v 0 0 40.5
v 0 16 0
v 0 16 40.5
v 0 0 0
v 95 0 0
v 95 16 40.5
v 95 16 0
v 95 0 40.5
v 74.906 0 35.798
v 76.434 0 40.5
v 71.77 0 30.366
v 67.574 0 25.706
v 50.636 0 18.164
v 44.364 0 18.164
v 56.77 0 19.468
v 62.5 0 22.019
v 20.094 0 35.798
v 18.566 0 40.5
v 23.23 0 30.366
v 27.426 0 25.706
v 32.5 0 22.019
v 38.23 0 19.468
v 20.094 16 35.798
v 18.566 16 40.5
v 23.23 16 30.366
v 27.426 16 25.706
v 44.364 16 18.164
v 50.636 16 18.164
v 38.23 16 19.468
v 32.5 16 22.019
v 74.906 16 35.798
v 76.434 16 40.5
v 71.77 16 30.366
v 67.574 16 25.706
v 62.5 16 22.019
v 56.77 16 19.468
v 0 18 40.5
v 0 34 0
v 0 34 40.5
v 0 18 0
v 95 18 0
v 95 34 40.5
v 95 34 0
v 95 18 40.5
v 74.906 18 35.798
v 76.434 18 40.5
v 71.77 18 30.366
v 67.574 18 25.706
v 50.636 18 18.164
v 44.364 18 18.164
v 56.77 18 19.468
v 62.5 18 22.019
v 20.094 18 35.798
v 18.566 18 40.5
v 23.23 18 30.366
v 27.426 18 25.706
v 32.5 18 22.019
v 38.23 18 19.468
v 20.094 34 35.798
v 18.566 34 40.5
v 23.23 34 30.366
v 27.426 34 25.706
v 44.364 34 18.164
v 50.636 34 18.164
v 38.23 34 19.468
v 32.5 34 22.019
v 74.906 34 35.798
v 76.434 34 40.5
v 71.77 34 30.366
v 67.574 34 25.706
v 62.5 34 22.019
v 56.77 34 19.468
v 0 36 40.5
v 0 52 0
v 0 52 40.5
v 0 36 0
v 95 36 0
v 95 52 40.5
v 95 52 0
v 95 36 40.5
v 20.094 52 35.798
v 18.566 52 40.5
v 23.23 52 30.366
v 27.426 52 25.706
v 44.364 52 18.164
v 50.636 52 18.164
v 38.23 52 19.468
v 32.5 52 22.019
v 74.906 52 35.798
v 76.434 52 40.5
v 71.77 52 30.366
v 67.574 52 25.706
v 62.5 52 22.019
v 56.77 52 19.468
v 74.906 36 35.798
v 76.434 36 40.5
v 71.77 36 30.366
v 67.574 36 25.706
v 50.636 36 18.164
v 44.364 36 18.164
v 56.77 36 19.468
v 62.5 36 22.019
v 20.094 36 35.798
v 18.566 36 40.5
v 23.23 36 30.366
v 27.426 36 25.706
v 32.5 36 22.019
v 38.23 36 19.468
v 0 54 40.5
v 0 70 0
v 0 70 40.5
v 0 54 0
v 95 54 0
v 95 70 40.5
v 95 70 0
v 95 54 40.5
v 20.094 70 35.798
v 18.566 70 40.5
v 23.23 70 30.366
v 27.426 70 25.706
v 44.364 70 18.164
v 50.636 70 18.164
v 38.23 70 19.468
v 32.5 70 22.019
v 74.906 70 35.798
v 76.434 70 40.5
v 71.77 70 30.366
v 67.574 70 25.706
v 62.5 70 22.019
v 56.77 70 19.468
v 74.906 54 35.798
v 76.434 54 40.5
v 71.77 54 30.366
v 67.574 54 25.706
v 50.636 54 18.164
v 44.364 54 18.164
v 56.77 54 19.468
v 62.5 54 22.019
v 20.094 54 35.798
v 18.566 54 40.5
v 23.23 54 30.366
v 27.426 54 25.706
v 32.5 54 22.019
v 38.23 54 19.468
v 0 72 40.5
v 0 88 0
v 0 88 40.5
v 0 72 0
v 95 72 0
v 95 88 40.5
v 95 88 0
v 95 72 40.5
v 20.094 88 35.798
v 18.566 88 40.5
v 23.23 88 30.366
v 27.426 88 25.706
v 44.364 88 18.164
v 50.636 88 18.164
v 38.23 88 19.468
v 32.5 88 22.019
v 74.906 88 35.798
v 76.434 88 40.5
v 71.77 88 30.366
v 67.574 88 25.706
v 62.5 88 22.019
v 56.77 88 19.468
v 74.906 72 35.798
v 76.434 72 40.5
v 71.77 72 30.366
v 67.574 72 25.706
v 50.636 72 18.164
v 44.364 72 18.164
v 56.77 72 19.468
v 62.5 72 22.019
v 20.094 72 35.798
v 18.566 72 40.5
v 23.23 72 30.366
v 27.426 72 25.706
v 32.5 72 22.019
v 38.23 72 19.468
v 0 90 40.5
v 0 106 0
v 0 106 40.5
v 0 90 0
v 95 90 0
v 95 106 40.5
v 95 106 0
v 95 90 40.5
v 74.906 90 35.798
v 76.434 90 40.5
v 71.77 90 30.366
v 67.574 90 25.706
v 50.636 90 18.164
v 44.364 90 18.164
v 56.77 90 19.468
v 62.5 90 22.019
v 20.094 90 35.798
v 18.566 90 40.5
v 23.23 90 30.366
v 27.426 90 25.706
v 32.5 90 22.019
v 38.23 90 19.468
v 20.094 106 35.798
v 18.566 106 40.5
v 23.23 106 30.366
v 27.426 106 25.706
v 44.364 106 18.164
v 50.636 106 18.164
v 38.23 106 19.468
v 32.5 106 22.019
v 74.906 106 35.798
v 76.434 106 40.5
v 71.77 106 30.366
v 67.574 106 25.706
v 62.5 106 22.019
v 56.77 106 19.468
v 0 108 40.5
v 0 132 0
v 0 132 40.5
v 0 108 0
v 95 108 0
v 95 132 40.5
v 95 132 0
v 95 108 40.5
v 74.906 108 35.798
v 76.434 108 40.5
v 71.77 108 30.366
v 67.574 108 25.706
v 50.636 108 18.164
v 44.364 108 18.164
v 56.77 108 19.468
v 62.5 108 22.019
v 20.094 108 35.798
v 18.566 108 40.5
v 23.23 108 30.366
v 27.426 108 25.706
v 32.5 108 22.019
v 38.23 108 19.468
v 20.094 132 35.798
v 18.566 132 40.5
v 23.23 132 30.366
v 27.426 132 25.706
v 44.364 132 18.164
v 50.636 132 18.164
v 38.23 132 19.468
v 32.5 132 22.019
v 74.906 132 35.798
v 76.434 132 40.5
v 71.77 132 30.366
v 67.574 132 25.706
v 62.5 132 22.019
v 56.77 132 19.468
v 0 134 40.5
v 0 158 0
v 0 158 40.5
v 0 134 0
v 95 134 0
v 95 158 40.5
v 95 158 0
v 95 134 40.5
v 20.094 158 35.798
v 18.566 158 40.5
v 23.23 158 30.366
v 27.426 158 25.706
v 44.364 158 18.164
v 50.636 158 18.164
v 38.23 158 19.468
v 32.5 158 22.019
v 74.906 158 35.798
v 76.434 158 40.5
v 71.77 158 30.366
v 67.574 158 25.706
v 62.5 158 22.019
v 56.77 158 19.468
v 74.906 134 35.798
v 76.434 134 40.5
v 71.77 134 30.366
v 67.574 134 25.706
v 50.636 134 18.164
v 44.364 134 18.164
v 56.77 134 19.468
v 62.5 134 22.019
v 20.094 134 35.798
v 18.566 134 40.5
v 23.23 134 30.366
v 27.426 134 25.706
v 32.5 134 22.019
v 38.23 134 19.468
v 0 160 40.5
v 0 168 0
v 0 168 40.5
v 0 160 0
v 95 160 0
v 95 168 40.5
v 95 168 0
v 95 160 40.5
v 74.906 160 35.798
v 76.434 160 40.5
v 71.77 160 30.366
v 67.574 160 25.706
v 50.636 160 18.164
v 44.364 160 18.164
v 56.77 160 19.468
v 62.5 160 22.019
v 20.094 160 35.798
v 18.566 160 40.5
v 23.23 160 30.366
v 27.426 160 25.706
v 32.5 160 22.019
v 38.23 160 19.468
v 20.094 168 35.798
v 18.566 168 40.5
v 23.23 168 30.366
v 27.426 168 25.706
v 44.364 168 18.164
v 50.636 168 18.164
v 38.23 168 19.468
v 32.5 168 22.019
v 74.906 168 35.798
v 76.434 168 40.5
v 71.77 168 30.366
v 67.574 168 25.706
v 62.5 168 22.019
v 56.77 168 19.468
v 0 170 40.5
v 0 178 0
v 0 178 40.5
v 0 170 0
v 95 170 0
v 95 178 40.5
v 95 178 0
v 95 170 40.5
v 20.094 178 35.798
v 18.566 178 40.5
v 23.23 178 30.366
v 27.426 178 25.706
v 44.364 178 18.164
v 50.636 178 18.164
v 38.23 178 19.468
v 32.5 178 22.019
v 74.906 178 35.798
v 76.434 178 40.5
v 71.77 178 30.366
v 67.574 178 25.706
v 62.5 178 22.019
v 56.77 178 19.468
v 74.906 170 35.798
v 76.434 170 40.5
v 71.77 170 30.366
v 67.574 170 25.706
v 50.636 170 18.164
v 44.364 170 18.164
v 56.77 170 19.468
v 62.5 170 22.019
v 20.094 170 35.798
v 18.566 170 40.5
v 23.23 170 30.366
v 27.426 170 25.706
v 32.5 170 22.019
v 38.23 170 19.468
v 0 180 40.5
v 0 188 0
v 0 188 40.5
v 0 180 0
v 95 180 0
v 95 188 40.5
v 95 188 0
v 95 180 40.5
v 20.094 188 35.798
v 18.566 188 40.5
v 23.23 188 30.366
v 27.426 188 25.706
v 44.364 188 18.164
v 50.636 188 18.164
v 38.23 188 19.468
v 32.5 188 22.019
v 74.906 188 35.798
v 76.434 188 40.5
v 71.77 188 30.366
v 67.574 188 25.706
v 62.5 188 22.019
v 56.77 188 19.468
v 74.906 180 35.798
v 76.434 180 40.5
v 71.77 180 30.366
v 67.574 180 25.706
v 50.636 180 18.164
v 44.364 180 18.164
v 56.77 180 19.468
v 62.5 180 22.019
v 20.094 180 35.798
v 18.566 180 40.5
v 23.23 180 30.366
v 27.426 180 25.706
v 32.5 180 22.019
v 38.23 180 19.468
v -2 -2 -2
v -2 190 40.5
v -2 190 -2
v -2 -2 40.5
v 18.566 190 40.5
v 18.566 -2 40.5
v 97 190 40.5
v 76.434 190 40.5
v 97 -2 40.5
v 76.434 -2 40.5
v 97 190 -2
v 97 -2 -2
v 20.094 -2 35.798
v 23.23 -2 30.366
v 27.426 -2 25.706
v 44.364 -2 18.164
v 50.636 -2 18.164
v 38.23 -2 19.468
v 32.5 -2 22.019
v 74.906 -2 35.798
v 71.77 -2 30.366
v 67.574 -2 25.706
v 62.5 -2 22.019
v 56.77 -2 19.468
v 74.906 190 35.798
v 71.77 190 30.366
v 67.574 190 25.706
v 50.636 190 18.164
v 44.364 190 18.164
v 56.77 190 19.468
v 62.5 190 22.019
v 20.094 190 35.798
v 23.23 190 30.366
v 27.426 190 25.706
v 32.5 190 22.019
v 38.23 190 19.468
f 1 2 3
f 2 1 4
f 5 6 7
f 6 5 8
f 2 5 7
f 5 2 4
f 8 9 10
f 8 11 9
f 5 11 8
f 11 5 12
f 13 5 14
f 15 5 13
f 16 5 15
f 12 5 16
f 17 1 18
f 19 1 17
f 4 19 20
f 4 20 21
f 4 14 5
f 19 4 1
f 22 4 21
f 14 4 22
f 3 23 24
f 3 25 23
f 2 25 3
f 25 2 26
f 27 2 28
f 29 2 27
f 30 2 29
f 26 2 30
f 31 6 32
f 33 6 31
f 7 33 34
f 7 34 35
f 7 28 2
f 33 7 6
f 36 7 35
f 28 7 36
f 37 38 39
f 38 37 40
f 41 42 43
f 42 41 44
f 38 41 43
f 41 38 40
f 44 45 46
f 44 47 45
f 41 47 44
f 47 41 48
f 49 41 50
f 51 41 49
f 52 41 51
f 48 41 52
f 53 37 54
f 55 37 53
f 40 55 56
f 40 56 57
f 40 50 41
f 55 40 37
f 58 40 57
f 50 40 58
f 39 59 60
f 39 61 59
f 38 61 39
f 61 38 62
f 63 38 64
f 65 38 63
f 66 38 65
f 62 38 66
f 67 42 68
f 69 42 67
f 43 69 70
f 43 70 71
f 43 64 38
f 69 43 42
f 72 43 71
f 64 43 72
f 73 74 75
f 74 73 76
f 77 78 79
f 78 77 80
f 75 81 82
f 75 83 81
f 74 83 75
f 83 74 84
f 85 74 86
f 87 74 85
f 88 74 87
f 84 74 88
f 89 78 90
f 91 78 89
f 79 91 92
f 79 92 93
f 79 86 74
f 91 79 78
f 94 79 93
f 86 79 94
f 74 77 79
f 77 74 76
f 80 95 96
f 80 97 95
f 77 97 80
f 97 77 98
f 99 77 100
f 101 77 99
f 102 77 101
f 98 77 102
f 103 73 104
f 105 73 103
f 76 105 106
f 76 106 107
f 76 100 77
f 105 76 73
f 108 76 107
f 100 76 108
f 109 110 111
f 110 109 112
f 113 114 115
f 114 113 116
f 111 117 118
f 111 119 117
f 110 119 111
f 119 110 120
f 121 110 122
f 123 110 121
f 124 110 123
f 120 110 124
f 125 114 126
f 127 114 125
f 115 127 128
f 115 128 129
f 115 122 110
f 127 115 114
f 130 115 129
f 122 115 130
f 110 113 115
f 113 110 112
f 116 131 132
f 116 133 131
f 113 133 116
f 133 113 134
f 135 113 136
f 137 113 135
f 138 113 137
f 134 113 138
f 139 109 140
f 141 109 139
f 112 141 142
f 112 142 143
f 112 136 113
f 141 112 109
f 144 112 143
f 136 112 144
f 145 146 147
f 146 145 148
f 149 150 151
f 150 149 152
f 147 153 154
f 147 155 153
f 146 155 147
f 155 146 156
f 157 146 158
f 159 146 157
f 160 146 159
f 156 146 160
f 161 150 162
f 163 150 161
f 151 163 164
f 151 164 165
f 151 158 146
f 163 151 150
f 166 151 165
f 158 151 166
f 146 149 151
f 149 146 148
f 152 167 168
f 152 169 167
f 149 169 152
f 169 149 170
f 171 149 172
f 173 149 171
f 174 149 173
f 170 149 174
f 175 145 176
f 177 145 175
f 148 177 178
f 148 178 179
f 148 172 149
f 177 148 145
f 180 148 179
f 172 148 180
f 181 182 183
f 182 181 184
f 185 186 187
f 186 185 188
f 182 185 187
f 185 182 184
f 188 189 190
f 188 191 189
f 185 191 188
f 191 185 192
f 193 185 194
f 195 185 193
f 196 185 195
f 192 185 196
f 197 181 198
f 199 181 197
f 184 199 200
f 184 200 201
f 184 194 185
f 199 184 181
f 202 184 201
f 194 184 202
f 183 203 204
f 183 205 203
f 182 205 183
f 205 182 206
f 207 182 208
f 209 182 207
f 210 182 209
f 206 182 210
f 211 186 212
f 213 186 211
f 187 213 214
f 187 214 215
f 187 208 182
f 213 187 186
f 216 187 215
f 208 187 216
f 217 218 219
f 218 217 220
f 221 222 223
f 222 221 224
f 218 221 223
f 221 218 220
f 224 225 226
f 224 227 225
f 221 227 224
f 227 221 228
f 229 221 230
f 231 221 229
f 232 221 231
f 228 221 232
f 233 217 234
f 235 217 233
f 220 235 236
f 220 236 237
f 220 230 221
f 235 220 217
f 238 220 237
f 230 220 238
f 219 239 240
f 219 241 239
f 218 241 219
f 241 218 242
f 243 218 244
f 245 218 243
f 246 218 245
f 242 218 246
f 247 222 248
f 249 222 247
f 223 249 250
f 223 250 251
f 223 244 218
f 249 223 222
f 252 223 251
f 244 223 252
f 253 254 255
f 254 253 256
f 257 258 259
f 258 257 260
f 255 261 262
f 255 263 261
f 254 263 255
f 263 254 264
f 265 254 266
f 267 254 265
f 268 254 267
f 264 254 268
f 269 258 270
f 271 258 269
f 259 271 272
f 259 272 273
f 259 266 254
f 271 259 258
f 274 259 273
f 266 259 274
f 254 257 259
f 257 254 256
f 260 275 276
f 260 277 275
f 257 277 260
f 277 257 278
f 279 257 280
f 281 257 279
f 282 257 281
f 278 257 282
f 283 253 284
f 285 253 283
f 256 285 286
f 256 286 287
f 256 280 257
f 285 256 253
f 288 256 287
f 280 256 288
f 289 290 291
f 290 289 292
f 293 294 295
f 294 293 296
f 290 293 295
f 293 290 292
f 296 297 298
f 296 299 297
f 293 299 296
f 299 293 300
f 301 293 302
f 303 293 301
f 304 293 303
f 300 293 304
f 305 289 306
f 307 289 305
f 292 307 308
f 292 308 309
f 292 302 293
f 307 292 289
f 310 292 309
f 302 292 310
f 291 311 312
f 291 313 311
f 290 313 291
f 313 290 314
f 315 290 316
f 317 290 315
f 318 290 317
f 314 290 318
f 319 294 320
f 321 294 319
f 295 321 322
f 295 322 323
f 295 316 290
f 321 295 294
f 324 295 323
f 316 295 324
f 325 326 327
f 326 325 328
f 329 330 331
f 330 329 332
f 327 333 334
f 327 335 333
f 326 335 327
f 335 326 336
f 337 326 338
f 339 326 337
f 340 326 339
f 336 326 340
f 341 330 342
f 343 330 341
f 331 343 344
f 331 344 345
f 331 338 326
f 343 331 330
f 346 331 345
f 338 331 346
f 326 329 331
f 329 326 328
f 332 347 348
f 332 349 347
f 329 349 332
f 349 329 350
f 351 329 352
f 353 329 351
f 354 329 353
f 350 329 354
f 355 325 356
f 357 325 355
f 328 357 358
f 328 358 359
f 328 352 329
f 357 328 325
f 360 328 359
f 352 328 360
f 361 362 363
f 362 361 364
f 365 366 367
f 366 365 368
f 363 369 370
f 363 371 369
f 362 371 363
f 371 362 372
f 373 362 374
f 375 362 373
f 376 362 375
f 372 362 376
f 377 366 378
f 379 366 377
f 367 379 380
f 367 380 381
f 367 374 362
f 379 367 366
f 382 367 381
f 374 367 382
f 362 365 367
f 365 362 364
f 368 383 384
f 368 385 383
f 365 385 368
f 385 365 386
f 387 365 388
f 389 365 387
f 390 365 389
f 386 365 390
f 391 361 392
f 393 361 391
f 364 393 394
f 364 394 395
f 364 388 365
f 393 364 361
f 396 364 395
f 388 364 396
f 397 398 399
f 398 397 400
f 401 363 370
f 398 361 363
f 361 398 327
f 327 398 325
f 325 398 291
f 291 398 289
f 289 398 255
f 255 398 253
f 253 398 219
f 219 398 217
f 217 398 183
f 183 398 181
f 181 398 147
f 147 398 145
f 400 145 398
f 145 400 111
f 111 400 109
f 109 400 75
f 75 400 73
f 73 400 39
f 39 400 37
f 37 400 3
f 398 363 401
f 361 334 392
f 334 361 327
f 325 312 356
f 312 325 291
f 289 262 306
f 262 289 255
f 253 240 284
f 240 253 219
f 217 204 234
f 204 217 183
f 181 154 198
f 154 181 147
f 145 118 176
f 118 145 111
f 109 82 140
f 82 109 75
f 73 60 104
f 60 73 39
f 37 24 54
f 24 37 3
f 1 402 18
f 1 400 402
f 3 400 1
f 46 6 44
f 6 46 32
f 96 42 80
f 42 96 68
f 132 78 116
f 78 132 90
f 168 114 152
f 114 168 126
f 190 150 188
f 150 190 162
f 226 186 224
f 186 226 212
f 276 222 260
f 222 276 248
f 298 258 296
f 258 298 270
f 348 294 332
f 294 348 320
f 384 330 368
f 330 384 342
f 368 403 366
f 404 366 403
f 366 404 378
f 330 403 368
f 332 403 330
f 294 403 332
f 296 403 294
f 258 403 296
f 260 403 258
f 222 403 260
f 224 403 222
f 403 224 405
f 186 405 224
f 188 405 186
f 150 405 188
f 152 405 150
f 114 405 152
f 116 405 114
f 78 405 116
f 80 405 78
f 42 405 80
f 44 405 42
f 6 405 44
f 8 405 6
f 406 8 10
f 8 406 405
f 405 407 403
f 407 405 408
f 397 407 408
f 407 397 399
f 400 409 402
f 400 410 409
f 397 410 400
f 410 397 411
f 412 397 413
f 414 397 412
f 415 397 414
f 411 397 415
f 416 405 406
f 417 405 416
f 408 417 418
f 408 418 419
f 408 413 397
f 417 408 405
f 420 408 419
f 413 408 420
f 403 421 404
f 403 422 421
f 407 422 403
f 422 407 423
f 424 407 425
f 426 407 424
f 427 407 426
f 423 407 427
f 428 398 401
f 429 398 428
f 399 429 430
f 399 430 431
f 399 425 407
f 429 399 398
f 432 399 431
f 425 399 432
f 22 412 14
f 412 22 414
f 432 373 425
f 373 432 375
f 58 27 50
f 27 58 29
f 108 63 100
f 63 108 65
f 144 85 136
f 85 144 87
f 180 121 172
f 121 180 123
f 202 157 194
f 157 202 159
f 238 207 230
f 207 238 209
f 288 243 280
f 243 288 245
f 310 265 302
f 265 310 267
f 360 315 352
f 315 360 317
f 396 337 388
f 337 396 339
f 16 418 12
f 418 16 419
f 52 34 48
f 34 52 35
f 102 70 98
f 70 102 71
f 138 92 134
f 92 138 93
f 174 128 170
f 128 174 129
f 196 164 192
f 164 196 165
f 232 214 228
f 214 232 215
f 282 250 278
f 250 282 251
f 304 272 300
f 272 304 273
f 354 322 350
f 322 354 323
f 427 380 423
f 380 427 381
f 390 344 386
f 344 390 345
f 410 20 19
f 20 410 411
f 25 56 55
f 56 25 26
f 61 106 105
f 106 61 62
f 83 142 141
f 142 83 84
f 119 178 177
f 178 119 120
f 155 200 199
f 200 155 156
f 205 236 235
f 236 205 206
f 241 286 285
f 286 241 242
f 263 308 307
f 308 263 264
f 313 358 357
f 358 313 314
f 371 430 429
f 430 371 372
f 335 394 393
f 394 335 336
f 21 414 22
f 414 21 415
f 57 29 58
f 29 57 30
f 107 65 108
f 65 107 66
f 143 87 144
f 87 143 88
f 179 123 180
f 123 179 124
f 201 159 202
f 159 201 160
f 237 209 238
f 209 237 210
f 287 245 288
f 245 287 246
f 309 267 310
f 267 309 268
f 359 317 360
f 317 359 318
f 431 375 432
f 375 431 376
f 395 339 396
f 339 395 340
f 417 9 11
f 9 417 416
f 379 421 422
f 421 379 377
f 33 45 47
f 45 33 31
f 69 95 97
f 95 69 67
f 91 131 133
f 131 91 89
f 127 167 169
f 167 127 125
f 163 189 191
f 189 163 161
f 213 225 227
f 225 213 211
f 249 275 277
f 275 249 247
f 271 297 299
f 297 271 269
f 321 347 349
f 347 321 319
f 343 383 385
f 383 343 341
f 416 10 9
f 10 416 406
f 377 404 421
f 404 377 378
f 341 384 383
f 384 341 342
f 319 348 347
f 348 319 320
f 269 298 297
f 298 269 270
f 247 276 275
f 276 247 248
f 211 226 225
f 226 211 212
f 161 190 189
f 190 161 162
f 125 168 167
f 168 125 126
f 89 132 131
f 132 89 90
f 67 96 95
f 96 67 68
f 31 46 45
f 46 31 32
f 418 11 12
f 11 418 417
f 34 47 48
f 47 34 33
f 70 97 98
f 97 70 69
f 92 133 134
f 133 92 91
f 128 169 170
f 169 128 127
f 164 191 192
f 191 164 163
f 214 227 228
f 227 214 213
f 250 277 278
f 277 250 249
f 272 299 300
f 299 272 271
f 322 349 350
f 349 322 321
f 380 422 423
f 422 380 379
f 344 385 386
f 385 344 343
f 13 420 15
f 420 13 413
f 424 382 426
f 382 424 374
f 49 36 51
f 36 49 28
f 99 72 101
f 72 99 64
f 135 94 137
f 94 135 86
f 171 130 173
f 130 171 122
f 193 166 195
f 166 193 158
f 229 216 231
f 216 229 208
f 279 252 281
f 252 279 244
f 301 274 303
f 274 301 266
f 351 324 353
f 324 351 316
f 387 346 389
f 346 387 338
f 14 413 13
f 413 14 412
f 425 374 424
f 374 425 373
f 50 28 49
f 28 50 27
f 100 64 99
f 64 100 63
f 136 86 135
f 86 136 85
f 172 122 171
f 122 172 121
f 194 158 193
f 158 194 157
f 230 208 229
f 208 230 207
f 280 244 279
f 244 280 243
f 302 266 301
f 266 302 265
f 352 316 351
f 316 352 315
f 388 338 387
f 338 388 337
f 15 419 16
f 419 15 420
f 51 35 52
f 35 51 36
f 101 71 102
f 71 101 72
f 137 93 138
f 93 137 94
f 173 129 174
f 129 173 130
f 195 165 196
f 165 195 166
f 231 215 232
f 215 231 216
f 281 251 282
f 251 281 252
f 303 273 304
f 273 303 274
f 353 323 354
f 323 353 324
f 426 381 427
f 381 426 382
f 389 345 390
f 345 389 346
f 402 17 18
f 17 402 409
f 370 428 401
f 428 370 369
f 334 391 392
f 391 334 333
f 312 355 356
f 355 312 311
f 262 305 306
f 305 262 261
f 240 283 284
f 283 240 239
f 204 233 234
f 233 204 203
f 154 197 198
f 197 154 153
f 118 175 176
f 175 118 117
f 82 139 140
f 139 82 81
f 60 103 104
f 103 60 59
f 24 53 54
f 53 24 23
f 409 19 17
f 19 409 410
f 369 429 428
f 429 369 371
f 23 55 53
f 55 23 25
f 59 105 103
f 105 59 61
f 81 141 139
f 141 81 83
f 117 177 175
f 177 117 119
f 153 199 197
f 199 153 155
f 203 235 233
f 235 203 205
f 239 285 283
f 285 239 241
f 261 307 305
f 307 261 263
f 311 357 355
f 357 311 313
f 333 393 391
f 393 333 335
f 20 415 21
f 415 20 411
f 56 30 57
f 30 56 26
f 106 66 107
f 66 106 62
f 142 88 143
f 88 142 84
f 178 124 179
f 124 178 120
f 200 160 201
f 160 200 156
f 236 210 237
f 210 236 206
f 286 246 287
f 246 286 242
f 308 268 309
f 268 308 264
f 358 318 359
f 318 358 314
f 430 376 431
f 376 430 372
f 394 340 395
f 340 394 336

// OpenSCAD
// card size:
//   95mm x 60mm
// deck heights:
//   2x 24mm
//   6x 16mm
//   2x 6mm
//   1x 8mm
// max box height:
//   65mm

// units: mm
WALL_THICKNESS = 2;
CARD_W = 60;
CARD_H = 95;

BOX_HEIGHT_RATIO = 0.675;
CUTOUT_DIAMETER = CARD_W * 1;
CUTOUT_OFFSET = CARD_W * 1/8;

FATIGUE_THICKNESS = 24;
CYCLIST_THICKNESS = 16;
// BOT_THICKNESS = 6;
// HELPER_THICKNESS = 6;
// MAP_THICKNESS = 8;
OTHERS_THICKNESS = 8;

DECK_ARRAY_THICKNESS = 
  WALL_THICKNESS * 10
  + FATIGUE_THICKNESS * 2
  + CYCLIST_THICKNESS * 6
  + OTHERS_THICKNESS * 3;

// echo("DECK_ARRAY_THICKNESS", DECK_ARRAY_THICKNESS);

SHOW_DECKS = false;
SHOW_SIDE_DECK = false;

module deck(thickness) {
  cube([CARD_H, thickness, CARD_W]);
}

module deck_array(sep=WALL_THICKNESS) {
  function offset_dist(sep_count=0, fatigue_count=0, cyclist_count=0, others_count=0) =
    sep * sep_count
    + FATIGUE_THICKNESS * fatigue_count 
    + CYCLIST_THICKNESS * cyclist_count 
    + OTHERS_THICKNESS * others_count;
  
  translate([0, offset_dist( 0, 0, 0, 0), 0]) deck(CYCLIST_THICKNESS);
  translate([0, offset_dist( 1, 0, 1, 0), 0]) deck(CYCLIST_THICKNESS);
  translate([0, offset_dist( 2, 0, 2, 0), 0]) deck(CYCLIST_THICKNESS);
  translate([0, offset_dist( 3, 0, 3, 0), 0]) deck(CYCLIST_THICKNESS);
  translate([0, offset_dist( 4, 0, 4, 0), 0]) deck(CYCLIST_THICKNESS);
  translate([0, offset_dist( 5, 0, 5, 0), 0]) deck(CYCLIST_THICKNESS);
  
  translate([0, offset_dist( 6, 0, 6, 0), 0]) deck(FATIGUE_THICKNESS);
  translate([0, offset_dist( 7, 1, 6, 0), 0]) deck(FATIGUE_THICKNESS);
  
  translate([0, offset_dist( 8, 2, 6, 0), 0]) deck(OTHERS_THICKNESS);
  translate([0, offset_dist( 9, 2, 6, 1), 0]) deck(OTHERS_THICKNESS);
  translate([0, offset_dist(10, 2, 6, 2), 0]) deck(OTHERS_THICKNESS);
}

module outer_box() {
  translate([-WALL_THICKNESS, -WALL_THICKNESS, -WALL_THICKNESS])
    cube([CARD_H + WALL_THICKNESS * 2,
          DECK_ARRAY_THICKNESS + WALL_THICKNESS * 2,
          CARD_W * BOX_HEIGHT_RATIO + WALL_THICKNESS * 1]);
}

module grip_cutouts() {
translate([CARD_H/2, -DECK_ARRAY_THICKNESS/2, CARD_W*BOX_HEIGHT_RATIO + CUTOUT_OFFSET])
rotate([-90]) cylinder(DECK_ARRAY_THICKNESS*2, d=CUTOUT_DIAMETER);
}


// card box model
difference() {
  outer_box();
  deck_array();
  grip_cutouts();
}

// debug decks
if (SHOW_DECKS) {
 color("Blue") deck_array();
}

if (SHOW_SIDE_DECK) {
 translate([100, 0, 0]) color("Blue") deck(CYCLIST_THICKNESS);
}
